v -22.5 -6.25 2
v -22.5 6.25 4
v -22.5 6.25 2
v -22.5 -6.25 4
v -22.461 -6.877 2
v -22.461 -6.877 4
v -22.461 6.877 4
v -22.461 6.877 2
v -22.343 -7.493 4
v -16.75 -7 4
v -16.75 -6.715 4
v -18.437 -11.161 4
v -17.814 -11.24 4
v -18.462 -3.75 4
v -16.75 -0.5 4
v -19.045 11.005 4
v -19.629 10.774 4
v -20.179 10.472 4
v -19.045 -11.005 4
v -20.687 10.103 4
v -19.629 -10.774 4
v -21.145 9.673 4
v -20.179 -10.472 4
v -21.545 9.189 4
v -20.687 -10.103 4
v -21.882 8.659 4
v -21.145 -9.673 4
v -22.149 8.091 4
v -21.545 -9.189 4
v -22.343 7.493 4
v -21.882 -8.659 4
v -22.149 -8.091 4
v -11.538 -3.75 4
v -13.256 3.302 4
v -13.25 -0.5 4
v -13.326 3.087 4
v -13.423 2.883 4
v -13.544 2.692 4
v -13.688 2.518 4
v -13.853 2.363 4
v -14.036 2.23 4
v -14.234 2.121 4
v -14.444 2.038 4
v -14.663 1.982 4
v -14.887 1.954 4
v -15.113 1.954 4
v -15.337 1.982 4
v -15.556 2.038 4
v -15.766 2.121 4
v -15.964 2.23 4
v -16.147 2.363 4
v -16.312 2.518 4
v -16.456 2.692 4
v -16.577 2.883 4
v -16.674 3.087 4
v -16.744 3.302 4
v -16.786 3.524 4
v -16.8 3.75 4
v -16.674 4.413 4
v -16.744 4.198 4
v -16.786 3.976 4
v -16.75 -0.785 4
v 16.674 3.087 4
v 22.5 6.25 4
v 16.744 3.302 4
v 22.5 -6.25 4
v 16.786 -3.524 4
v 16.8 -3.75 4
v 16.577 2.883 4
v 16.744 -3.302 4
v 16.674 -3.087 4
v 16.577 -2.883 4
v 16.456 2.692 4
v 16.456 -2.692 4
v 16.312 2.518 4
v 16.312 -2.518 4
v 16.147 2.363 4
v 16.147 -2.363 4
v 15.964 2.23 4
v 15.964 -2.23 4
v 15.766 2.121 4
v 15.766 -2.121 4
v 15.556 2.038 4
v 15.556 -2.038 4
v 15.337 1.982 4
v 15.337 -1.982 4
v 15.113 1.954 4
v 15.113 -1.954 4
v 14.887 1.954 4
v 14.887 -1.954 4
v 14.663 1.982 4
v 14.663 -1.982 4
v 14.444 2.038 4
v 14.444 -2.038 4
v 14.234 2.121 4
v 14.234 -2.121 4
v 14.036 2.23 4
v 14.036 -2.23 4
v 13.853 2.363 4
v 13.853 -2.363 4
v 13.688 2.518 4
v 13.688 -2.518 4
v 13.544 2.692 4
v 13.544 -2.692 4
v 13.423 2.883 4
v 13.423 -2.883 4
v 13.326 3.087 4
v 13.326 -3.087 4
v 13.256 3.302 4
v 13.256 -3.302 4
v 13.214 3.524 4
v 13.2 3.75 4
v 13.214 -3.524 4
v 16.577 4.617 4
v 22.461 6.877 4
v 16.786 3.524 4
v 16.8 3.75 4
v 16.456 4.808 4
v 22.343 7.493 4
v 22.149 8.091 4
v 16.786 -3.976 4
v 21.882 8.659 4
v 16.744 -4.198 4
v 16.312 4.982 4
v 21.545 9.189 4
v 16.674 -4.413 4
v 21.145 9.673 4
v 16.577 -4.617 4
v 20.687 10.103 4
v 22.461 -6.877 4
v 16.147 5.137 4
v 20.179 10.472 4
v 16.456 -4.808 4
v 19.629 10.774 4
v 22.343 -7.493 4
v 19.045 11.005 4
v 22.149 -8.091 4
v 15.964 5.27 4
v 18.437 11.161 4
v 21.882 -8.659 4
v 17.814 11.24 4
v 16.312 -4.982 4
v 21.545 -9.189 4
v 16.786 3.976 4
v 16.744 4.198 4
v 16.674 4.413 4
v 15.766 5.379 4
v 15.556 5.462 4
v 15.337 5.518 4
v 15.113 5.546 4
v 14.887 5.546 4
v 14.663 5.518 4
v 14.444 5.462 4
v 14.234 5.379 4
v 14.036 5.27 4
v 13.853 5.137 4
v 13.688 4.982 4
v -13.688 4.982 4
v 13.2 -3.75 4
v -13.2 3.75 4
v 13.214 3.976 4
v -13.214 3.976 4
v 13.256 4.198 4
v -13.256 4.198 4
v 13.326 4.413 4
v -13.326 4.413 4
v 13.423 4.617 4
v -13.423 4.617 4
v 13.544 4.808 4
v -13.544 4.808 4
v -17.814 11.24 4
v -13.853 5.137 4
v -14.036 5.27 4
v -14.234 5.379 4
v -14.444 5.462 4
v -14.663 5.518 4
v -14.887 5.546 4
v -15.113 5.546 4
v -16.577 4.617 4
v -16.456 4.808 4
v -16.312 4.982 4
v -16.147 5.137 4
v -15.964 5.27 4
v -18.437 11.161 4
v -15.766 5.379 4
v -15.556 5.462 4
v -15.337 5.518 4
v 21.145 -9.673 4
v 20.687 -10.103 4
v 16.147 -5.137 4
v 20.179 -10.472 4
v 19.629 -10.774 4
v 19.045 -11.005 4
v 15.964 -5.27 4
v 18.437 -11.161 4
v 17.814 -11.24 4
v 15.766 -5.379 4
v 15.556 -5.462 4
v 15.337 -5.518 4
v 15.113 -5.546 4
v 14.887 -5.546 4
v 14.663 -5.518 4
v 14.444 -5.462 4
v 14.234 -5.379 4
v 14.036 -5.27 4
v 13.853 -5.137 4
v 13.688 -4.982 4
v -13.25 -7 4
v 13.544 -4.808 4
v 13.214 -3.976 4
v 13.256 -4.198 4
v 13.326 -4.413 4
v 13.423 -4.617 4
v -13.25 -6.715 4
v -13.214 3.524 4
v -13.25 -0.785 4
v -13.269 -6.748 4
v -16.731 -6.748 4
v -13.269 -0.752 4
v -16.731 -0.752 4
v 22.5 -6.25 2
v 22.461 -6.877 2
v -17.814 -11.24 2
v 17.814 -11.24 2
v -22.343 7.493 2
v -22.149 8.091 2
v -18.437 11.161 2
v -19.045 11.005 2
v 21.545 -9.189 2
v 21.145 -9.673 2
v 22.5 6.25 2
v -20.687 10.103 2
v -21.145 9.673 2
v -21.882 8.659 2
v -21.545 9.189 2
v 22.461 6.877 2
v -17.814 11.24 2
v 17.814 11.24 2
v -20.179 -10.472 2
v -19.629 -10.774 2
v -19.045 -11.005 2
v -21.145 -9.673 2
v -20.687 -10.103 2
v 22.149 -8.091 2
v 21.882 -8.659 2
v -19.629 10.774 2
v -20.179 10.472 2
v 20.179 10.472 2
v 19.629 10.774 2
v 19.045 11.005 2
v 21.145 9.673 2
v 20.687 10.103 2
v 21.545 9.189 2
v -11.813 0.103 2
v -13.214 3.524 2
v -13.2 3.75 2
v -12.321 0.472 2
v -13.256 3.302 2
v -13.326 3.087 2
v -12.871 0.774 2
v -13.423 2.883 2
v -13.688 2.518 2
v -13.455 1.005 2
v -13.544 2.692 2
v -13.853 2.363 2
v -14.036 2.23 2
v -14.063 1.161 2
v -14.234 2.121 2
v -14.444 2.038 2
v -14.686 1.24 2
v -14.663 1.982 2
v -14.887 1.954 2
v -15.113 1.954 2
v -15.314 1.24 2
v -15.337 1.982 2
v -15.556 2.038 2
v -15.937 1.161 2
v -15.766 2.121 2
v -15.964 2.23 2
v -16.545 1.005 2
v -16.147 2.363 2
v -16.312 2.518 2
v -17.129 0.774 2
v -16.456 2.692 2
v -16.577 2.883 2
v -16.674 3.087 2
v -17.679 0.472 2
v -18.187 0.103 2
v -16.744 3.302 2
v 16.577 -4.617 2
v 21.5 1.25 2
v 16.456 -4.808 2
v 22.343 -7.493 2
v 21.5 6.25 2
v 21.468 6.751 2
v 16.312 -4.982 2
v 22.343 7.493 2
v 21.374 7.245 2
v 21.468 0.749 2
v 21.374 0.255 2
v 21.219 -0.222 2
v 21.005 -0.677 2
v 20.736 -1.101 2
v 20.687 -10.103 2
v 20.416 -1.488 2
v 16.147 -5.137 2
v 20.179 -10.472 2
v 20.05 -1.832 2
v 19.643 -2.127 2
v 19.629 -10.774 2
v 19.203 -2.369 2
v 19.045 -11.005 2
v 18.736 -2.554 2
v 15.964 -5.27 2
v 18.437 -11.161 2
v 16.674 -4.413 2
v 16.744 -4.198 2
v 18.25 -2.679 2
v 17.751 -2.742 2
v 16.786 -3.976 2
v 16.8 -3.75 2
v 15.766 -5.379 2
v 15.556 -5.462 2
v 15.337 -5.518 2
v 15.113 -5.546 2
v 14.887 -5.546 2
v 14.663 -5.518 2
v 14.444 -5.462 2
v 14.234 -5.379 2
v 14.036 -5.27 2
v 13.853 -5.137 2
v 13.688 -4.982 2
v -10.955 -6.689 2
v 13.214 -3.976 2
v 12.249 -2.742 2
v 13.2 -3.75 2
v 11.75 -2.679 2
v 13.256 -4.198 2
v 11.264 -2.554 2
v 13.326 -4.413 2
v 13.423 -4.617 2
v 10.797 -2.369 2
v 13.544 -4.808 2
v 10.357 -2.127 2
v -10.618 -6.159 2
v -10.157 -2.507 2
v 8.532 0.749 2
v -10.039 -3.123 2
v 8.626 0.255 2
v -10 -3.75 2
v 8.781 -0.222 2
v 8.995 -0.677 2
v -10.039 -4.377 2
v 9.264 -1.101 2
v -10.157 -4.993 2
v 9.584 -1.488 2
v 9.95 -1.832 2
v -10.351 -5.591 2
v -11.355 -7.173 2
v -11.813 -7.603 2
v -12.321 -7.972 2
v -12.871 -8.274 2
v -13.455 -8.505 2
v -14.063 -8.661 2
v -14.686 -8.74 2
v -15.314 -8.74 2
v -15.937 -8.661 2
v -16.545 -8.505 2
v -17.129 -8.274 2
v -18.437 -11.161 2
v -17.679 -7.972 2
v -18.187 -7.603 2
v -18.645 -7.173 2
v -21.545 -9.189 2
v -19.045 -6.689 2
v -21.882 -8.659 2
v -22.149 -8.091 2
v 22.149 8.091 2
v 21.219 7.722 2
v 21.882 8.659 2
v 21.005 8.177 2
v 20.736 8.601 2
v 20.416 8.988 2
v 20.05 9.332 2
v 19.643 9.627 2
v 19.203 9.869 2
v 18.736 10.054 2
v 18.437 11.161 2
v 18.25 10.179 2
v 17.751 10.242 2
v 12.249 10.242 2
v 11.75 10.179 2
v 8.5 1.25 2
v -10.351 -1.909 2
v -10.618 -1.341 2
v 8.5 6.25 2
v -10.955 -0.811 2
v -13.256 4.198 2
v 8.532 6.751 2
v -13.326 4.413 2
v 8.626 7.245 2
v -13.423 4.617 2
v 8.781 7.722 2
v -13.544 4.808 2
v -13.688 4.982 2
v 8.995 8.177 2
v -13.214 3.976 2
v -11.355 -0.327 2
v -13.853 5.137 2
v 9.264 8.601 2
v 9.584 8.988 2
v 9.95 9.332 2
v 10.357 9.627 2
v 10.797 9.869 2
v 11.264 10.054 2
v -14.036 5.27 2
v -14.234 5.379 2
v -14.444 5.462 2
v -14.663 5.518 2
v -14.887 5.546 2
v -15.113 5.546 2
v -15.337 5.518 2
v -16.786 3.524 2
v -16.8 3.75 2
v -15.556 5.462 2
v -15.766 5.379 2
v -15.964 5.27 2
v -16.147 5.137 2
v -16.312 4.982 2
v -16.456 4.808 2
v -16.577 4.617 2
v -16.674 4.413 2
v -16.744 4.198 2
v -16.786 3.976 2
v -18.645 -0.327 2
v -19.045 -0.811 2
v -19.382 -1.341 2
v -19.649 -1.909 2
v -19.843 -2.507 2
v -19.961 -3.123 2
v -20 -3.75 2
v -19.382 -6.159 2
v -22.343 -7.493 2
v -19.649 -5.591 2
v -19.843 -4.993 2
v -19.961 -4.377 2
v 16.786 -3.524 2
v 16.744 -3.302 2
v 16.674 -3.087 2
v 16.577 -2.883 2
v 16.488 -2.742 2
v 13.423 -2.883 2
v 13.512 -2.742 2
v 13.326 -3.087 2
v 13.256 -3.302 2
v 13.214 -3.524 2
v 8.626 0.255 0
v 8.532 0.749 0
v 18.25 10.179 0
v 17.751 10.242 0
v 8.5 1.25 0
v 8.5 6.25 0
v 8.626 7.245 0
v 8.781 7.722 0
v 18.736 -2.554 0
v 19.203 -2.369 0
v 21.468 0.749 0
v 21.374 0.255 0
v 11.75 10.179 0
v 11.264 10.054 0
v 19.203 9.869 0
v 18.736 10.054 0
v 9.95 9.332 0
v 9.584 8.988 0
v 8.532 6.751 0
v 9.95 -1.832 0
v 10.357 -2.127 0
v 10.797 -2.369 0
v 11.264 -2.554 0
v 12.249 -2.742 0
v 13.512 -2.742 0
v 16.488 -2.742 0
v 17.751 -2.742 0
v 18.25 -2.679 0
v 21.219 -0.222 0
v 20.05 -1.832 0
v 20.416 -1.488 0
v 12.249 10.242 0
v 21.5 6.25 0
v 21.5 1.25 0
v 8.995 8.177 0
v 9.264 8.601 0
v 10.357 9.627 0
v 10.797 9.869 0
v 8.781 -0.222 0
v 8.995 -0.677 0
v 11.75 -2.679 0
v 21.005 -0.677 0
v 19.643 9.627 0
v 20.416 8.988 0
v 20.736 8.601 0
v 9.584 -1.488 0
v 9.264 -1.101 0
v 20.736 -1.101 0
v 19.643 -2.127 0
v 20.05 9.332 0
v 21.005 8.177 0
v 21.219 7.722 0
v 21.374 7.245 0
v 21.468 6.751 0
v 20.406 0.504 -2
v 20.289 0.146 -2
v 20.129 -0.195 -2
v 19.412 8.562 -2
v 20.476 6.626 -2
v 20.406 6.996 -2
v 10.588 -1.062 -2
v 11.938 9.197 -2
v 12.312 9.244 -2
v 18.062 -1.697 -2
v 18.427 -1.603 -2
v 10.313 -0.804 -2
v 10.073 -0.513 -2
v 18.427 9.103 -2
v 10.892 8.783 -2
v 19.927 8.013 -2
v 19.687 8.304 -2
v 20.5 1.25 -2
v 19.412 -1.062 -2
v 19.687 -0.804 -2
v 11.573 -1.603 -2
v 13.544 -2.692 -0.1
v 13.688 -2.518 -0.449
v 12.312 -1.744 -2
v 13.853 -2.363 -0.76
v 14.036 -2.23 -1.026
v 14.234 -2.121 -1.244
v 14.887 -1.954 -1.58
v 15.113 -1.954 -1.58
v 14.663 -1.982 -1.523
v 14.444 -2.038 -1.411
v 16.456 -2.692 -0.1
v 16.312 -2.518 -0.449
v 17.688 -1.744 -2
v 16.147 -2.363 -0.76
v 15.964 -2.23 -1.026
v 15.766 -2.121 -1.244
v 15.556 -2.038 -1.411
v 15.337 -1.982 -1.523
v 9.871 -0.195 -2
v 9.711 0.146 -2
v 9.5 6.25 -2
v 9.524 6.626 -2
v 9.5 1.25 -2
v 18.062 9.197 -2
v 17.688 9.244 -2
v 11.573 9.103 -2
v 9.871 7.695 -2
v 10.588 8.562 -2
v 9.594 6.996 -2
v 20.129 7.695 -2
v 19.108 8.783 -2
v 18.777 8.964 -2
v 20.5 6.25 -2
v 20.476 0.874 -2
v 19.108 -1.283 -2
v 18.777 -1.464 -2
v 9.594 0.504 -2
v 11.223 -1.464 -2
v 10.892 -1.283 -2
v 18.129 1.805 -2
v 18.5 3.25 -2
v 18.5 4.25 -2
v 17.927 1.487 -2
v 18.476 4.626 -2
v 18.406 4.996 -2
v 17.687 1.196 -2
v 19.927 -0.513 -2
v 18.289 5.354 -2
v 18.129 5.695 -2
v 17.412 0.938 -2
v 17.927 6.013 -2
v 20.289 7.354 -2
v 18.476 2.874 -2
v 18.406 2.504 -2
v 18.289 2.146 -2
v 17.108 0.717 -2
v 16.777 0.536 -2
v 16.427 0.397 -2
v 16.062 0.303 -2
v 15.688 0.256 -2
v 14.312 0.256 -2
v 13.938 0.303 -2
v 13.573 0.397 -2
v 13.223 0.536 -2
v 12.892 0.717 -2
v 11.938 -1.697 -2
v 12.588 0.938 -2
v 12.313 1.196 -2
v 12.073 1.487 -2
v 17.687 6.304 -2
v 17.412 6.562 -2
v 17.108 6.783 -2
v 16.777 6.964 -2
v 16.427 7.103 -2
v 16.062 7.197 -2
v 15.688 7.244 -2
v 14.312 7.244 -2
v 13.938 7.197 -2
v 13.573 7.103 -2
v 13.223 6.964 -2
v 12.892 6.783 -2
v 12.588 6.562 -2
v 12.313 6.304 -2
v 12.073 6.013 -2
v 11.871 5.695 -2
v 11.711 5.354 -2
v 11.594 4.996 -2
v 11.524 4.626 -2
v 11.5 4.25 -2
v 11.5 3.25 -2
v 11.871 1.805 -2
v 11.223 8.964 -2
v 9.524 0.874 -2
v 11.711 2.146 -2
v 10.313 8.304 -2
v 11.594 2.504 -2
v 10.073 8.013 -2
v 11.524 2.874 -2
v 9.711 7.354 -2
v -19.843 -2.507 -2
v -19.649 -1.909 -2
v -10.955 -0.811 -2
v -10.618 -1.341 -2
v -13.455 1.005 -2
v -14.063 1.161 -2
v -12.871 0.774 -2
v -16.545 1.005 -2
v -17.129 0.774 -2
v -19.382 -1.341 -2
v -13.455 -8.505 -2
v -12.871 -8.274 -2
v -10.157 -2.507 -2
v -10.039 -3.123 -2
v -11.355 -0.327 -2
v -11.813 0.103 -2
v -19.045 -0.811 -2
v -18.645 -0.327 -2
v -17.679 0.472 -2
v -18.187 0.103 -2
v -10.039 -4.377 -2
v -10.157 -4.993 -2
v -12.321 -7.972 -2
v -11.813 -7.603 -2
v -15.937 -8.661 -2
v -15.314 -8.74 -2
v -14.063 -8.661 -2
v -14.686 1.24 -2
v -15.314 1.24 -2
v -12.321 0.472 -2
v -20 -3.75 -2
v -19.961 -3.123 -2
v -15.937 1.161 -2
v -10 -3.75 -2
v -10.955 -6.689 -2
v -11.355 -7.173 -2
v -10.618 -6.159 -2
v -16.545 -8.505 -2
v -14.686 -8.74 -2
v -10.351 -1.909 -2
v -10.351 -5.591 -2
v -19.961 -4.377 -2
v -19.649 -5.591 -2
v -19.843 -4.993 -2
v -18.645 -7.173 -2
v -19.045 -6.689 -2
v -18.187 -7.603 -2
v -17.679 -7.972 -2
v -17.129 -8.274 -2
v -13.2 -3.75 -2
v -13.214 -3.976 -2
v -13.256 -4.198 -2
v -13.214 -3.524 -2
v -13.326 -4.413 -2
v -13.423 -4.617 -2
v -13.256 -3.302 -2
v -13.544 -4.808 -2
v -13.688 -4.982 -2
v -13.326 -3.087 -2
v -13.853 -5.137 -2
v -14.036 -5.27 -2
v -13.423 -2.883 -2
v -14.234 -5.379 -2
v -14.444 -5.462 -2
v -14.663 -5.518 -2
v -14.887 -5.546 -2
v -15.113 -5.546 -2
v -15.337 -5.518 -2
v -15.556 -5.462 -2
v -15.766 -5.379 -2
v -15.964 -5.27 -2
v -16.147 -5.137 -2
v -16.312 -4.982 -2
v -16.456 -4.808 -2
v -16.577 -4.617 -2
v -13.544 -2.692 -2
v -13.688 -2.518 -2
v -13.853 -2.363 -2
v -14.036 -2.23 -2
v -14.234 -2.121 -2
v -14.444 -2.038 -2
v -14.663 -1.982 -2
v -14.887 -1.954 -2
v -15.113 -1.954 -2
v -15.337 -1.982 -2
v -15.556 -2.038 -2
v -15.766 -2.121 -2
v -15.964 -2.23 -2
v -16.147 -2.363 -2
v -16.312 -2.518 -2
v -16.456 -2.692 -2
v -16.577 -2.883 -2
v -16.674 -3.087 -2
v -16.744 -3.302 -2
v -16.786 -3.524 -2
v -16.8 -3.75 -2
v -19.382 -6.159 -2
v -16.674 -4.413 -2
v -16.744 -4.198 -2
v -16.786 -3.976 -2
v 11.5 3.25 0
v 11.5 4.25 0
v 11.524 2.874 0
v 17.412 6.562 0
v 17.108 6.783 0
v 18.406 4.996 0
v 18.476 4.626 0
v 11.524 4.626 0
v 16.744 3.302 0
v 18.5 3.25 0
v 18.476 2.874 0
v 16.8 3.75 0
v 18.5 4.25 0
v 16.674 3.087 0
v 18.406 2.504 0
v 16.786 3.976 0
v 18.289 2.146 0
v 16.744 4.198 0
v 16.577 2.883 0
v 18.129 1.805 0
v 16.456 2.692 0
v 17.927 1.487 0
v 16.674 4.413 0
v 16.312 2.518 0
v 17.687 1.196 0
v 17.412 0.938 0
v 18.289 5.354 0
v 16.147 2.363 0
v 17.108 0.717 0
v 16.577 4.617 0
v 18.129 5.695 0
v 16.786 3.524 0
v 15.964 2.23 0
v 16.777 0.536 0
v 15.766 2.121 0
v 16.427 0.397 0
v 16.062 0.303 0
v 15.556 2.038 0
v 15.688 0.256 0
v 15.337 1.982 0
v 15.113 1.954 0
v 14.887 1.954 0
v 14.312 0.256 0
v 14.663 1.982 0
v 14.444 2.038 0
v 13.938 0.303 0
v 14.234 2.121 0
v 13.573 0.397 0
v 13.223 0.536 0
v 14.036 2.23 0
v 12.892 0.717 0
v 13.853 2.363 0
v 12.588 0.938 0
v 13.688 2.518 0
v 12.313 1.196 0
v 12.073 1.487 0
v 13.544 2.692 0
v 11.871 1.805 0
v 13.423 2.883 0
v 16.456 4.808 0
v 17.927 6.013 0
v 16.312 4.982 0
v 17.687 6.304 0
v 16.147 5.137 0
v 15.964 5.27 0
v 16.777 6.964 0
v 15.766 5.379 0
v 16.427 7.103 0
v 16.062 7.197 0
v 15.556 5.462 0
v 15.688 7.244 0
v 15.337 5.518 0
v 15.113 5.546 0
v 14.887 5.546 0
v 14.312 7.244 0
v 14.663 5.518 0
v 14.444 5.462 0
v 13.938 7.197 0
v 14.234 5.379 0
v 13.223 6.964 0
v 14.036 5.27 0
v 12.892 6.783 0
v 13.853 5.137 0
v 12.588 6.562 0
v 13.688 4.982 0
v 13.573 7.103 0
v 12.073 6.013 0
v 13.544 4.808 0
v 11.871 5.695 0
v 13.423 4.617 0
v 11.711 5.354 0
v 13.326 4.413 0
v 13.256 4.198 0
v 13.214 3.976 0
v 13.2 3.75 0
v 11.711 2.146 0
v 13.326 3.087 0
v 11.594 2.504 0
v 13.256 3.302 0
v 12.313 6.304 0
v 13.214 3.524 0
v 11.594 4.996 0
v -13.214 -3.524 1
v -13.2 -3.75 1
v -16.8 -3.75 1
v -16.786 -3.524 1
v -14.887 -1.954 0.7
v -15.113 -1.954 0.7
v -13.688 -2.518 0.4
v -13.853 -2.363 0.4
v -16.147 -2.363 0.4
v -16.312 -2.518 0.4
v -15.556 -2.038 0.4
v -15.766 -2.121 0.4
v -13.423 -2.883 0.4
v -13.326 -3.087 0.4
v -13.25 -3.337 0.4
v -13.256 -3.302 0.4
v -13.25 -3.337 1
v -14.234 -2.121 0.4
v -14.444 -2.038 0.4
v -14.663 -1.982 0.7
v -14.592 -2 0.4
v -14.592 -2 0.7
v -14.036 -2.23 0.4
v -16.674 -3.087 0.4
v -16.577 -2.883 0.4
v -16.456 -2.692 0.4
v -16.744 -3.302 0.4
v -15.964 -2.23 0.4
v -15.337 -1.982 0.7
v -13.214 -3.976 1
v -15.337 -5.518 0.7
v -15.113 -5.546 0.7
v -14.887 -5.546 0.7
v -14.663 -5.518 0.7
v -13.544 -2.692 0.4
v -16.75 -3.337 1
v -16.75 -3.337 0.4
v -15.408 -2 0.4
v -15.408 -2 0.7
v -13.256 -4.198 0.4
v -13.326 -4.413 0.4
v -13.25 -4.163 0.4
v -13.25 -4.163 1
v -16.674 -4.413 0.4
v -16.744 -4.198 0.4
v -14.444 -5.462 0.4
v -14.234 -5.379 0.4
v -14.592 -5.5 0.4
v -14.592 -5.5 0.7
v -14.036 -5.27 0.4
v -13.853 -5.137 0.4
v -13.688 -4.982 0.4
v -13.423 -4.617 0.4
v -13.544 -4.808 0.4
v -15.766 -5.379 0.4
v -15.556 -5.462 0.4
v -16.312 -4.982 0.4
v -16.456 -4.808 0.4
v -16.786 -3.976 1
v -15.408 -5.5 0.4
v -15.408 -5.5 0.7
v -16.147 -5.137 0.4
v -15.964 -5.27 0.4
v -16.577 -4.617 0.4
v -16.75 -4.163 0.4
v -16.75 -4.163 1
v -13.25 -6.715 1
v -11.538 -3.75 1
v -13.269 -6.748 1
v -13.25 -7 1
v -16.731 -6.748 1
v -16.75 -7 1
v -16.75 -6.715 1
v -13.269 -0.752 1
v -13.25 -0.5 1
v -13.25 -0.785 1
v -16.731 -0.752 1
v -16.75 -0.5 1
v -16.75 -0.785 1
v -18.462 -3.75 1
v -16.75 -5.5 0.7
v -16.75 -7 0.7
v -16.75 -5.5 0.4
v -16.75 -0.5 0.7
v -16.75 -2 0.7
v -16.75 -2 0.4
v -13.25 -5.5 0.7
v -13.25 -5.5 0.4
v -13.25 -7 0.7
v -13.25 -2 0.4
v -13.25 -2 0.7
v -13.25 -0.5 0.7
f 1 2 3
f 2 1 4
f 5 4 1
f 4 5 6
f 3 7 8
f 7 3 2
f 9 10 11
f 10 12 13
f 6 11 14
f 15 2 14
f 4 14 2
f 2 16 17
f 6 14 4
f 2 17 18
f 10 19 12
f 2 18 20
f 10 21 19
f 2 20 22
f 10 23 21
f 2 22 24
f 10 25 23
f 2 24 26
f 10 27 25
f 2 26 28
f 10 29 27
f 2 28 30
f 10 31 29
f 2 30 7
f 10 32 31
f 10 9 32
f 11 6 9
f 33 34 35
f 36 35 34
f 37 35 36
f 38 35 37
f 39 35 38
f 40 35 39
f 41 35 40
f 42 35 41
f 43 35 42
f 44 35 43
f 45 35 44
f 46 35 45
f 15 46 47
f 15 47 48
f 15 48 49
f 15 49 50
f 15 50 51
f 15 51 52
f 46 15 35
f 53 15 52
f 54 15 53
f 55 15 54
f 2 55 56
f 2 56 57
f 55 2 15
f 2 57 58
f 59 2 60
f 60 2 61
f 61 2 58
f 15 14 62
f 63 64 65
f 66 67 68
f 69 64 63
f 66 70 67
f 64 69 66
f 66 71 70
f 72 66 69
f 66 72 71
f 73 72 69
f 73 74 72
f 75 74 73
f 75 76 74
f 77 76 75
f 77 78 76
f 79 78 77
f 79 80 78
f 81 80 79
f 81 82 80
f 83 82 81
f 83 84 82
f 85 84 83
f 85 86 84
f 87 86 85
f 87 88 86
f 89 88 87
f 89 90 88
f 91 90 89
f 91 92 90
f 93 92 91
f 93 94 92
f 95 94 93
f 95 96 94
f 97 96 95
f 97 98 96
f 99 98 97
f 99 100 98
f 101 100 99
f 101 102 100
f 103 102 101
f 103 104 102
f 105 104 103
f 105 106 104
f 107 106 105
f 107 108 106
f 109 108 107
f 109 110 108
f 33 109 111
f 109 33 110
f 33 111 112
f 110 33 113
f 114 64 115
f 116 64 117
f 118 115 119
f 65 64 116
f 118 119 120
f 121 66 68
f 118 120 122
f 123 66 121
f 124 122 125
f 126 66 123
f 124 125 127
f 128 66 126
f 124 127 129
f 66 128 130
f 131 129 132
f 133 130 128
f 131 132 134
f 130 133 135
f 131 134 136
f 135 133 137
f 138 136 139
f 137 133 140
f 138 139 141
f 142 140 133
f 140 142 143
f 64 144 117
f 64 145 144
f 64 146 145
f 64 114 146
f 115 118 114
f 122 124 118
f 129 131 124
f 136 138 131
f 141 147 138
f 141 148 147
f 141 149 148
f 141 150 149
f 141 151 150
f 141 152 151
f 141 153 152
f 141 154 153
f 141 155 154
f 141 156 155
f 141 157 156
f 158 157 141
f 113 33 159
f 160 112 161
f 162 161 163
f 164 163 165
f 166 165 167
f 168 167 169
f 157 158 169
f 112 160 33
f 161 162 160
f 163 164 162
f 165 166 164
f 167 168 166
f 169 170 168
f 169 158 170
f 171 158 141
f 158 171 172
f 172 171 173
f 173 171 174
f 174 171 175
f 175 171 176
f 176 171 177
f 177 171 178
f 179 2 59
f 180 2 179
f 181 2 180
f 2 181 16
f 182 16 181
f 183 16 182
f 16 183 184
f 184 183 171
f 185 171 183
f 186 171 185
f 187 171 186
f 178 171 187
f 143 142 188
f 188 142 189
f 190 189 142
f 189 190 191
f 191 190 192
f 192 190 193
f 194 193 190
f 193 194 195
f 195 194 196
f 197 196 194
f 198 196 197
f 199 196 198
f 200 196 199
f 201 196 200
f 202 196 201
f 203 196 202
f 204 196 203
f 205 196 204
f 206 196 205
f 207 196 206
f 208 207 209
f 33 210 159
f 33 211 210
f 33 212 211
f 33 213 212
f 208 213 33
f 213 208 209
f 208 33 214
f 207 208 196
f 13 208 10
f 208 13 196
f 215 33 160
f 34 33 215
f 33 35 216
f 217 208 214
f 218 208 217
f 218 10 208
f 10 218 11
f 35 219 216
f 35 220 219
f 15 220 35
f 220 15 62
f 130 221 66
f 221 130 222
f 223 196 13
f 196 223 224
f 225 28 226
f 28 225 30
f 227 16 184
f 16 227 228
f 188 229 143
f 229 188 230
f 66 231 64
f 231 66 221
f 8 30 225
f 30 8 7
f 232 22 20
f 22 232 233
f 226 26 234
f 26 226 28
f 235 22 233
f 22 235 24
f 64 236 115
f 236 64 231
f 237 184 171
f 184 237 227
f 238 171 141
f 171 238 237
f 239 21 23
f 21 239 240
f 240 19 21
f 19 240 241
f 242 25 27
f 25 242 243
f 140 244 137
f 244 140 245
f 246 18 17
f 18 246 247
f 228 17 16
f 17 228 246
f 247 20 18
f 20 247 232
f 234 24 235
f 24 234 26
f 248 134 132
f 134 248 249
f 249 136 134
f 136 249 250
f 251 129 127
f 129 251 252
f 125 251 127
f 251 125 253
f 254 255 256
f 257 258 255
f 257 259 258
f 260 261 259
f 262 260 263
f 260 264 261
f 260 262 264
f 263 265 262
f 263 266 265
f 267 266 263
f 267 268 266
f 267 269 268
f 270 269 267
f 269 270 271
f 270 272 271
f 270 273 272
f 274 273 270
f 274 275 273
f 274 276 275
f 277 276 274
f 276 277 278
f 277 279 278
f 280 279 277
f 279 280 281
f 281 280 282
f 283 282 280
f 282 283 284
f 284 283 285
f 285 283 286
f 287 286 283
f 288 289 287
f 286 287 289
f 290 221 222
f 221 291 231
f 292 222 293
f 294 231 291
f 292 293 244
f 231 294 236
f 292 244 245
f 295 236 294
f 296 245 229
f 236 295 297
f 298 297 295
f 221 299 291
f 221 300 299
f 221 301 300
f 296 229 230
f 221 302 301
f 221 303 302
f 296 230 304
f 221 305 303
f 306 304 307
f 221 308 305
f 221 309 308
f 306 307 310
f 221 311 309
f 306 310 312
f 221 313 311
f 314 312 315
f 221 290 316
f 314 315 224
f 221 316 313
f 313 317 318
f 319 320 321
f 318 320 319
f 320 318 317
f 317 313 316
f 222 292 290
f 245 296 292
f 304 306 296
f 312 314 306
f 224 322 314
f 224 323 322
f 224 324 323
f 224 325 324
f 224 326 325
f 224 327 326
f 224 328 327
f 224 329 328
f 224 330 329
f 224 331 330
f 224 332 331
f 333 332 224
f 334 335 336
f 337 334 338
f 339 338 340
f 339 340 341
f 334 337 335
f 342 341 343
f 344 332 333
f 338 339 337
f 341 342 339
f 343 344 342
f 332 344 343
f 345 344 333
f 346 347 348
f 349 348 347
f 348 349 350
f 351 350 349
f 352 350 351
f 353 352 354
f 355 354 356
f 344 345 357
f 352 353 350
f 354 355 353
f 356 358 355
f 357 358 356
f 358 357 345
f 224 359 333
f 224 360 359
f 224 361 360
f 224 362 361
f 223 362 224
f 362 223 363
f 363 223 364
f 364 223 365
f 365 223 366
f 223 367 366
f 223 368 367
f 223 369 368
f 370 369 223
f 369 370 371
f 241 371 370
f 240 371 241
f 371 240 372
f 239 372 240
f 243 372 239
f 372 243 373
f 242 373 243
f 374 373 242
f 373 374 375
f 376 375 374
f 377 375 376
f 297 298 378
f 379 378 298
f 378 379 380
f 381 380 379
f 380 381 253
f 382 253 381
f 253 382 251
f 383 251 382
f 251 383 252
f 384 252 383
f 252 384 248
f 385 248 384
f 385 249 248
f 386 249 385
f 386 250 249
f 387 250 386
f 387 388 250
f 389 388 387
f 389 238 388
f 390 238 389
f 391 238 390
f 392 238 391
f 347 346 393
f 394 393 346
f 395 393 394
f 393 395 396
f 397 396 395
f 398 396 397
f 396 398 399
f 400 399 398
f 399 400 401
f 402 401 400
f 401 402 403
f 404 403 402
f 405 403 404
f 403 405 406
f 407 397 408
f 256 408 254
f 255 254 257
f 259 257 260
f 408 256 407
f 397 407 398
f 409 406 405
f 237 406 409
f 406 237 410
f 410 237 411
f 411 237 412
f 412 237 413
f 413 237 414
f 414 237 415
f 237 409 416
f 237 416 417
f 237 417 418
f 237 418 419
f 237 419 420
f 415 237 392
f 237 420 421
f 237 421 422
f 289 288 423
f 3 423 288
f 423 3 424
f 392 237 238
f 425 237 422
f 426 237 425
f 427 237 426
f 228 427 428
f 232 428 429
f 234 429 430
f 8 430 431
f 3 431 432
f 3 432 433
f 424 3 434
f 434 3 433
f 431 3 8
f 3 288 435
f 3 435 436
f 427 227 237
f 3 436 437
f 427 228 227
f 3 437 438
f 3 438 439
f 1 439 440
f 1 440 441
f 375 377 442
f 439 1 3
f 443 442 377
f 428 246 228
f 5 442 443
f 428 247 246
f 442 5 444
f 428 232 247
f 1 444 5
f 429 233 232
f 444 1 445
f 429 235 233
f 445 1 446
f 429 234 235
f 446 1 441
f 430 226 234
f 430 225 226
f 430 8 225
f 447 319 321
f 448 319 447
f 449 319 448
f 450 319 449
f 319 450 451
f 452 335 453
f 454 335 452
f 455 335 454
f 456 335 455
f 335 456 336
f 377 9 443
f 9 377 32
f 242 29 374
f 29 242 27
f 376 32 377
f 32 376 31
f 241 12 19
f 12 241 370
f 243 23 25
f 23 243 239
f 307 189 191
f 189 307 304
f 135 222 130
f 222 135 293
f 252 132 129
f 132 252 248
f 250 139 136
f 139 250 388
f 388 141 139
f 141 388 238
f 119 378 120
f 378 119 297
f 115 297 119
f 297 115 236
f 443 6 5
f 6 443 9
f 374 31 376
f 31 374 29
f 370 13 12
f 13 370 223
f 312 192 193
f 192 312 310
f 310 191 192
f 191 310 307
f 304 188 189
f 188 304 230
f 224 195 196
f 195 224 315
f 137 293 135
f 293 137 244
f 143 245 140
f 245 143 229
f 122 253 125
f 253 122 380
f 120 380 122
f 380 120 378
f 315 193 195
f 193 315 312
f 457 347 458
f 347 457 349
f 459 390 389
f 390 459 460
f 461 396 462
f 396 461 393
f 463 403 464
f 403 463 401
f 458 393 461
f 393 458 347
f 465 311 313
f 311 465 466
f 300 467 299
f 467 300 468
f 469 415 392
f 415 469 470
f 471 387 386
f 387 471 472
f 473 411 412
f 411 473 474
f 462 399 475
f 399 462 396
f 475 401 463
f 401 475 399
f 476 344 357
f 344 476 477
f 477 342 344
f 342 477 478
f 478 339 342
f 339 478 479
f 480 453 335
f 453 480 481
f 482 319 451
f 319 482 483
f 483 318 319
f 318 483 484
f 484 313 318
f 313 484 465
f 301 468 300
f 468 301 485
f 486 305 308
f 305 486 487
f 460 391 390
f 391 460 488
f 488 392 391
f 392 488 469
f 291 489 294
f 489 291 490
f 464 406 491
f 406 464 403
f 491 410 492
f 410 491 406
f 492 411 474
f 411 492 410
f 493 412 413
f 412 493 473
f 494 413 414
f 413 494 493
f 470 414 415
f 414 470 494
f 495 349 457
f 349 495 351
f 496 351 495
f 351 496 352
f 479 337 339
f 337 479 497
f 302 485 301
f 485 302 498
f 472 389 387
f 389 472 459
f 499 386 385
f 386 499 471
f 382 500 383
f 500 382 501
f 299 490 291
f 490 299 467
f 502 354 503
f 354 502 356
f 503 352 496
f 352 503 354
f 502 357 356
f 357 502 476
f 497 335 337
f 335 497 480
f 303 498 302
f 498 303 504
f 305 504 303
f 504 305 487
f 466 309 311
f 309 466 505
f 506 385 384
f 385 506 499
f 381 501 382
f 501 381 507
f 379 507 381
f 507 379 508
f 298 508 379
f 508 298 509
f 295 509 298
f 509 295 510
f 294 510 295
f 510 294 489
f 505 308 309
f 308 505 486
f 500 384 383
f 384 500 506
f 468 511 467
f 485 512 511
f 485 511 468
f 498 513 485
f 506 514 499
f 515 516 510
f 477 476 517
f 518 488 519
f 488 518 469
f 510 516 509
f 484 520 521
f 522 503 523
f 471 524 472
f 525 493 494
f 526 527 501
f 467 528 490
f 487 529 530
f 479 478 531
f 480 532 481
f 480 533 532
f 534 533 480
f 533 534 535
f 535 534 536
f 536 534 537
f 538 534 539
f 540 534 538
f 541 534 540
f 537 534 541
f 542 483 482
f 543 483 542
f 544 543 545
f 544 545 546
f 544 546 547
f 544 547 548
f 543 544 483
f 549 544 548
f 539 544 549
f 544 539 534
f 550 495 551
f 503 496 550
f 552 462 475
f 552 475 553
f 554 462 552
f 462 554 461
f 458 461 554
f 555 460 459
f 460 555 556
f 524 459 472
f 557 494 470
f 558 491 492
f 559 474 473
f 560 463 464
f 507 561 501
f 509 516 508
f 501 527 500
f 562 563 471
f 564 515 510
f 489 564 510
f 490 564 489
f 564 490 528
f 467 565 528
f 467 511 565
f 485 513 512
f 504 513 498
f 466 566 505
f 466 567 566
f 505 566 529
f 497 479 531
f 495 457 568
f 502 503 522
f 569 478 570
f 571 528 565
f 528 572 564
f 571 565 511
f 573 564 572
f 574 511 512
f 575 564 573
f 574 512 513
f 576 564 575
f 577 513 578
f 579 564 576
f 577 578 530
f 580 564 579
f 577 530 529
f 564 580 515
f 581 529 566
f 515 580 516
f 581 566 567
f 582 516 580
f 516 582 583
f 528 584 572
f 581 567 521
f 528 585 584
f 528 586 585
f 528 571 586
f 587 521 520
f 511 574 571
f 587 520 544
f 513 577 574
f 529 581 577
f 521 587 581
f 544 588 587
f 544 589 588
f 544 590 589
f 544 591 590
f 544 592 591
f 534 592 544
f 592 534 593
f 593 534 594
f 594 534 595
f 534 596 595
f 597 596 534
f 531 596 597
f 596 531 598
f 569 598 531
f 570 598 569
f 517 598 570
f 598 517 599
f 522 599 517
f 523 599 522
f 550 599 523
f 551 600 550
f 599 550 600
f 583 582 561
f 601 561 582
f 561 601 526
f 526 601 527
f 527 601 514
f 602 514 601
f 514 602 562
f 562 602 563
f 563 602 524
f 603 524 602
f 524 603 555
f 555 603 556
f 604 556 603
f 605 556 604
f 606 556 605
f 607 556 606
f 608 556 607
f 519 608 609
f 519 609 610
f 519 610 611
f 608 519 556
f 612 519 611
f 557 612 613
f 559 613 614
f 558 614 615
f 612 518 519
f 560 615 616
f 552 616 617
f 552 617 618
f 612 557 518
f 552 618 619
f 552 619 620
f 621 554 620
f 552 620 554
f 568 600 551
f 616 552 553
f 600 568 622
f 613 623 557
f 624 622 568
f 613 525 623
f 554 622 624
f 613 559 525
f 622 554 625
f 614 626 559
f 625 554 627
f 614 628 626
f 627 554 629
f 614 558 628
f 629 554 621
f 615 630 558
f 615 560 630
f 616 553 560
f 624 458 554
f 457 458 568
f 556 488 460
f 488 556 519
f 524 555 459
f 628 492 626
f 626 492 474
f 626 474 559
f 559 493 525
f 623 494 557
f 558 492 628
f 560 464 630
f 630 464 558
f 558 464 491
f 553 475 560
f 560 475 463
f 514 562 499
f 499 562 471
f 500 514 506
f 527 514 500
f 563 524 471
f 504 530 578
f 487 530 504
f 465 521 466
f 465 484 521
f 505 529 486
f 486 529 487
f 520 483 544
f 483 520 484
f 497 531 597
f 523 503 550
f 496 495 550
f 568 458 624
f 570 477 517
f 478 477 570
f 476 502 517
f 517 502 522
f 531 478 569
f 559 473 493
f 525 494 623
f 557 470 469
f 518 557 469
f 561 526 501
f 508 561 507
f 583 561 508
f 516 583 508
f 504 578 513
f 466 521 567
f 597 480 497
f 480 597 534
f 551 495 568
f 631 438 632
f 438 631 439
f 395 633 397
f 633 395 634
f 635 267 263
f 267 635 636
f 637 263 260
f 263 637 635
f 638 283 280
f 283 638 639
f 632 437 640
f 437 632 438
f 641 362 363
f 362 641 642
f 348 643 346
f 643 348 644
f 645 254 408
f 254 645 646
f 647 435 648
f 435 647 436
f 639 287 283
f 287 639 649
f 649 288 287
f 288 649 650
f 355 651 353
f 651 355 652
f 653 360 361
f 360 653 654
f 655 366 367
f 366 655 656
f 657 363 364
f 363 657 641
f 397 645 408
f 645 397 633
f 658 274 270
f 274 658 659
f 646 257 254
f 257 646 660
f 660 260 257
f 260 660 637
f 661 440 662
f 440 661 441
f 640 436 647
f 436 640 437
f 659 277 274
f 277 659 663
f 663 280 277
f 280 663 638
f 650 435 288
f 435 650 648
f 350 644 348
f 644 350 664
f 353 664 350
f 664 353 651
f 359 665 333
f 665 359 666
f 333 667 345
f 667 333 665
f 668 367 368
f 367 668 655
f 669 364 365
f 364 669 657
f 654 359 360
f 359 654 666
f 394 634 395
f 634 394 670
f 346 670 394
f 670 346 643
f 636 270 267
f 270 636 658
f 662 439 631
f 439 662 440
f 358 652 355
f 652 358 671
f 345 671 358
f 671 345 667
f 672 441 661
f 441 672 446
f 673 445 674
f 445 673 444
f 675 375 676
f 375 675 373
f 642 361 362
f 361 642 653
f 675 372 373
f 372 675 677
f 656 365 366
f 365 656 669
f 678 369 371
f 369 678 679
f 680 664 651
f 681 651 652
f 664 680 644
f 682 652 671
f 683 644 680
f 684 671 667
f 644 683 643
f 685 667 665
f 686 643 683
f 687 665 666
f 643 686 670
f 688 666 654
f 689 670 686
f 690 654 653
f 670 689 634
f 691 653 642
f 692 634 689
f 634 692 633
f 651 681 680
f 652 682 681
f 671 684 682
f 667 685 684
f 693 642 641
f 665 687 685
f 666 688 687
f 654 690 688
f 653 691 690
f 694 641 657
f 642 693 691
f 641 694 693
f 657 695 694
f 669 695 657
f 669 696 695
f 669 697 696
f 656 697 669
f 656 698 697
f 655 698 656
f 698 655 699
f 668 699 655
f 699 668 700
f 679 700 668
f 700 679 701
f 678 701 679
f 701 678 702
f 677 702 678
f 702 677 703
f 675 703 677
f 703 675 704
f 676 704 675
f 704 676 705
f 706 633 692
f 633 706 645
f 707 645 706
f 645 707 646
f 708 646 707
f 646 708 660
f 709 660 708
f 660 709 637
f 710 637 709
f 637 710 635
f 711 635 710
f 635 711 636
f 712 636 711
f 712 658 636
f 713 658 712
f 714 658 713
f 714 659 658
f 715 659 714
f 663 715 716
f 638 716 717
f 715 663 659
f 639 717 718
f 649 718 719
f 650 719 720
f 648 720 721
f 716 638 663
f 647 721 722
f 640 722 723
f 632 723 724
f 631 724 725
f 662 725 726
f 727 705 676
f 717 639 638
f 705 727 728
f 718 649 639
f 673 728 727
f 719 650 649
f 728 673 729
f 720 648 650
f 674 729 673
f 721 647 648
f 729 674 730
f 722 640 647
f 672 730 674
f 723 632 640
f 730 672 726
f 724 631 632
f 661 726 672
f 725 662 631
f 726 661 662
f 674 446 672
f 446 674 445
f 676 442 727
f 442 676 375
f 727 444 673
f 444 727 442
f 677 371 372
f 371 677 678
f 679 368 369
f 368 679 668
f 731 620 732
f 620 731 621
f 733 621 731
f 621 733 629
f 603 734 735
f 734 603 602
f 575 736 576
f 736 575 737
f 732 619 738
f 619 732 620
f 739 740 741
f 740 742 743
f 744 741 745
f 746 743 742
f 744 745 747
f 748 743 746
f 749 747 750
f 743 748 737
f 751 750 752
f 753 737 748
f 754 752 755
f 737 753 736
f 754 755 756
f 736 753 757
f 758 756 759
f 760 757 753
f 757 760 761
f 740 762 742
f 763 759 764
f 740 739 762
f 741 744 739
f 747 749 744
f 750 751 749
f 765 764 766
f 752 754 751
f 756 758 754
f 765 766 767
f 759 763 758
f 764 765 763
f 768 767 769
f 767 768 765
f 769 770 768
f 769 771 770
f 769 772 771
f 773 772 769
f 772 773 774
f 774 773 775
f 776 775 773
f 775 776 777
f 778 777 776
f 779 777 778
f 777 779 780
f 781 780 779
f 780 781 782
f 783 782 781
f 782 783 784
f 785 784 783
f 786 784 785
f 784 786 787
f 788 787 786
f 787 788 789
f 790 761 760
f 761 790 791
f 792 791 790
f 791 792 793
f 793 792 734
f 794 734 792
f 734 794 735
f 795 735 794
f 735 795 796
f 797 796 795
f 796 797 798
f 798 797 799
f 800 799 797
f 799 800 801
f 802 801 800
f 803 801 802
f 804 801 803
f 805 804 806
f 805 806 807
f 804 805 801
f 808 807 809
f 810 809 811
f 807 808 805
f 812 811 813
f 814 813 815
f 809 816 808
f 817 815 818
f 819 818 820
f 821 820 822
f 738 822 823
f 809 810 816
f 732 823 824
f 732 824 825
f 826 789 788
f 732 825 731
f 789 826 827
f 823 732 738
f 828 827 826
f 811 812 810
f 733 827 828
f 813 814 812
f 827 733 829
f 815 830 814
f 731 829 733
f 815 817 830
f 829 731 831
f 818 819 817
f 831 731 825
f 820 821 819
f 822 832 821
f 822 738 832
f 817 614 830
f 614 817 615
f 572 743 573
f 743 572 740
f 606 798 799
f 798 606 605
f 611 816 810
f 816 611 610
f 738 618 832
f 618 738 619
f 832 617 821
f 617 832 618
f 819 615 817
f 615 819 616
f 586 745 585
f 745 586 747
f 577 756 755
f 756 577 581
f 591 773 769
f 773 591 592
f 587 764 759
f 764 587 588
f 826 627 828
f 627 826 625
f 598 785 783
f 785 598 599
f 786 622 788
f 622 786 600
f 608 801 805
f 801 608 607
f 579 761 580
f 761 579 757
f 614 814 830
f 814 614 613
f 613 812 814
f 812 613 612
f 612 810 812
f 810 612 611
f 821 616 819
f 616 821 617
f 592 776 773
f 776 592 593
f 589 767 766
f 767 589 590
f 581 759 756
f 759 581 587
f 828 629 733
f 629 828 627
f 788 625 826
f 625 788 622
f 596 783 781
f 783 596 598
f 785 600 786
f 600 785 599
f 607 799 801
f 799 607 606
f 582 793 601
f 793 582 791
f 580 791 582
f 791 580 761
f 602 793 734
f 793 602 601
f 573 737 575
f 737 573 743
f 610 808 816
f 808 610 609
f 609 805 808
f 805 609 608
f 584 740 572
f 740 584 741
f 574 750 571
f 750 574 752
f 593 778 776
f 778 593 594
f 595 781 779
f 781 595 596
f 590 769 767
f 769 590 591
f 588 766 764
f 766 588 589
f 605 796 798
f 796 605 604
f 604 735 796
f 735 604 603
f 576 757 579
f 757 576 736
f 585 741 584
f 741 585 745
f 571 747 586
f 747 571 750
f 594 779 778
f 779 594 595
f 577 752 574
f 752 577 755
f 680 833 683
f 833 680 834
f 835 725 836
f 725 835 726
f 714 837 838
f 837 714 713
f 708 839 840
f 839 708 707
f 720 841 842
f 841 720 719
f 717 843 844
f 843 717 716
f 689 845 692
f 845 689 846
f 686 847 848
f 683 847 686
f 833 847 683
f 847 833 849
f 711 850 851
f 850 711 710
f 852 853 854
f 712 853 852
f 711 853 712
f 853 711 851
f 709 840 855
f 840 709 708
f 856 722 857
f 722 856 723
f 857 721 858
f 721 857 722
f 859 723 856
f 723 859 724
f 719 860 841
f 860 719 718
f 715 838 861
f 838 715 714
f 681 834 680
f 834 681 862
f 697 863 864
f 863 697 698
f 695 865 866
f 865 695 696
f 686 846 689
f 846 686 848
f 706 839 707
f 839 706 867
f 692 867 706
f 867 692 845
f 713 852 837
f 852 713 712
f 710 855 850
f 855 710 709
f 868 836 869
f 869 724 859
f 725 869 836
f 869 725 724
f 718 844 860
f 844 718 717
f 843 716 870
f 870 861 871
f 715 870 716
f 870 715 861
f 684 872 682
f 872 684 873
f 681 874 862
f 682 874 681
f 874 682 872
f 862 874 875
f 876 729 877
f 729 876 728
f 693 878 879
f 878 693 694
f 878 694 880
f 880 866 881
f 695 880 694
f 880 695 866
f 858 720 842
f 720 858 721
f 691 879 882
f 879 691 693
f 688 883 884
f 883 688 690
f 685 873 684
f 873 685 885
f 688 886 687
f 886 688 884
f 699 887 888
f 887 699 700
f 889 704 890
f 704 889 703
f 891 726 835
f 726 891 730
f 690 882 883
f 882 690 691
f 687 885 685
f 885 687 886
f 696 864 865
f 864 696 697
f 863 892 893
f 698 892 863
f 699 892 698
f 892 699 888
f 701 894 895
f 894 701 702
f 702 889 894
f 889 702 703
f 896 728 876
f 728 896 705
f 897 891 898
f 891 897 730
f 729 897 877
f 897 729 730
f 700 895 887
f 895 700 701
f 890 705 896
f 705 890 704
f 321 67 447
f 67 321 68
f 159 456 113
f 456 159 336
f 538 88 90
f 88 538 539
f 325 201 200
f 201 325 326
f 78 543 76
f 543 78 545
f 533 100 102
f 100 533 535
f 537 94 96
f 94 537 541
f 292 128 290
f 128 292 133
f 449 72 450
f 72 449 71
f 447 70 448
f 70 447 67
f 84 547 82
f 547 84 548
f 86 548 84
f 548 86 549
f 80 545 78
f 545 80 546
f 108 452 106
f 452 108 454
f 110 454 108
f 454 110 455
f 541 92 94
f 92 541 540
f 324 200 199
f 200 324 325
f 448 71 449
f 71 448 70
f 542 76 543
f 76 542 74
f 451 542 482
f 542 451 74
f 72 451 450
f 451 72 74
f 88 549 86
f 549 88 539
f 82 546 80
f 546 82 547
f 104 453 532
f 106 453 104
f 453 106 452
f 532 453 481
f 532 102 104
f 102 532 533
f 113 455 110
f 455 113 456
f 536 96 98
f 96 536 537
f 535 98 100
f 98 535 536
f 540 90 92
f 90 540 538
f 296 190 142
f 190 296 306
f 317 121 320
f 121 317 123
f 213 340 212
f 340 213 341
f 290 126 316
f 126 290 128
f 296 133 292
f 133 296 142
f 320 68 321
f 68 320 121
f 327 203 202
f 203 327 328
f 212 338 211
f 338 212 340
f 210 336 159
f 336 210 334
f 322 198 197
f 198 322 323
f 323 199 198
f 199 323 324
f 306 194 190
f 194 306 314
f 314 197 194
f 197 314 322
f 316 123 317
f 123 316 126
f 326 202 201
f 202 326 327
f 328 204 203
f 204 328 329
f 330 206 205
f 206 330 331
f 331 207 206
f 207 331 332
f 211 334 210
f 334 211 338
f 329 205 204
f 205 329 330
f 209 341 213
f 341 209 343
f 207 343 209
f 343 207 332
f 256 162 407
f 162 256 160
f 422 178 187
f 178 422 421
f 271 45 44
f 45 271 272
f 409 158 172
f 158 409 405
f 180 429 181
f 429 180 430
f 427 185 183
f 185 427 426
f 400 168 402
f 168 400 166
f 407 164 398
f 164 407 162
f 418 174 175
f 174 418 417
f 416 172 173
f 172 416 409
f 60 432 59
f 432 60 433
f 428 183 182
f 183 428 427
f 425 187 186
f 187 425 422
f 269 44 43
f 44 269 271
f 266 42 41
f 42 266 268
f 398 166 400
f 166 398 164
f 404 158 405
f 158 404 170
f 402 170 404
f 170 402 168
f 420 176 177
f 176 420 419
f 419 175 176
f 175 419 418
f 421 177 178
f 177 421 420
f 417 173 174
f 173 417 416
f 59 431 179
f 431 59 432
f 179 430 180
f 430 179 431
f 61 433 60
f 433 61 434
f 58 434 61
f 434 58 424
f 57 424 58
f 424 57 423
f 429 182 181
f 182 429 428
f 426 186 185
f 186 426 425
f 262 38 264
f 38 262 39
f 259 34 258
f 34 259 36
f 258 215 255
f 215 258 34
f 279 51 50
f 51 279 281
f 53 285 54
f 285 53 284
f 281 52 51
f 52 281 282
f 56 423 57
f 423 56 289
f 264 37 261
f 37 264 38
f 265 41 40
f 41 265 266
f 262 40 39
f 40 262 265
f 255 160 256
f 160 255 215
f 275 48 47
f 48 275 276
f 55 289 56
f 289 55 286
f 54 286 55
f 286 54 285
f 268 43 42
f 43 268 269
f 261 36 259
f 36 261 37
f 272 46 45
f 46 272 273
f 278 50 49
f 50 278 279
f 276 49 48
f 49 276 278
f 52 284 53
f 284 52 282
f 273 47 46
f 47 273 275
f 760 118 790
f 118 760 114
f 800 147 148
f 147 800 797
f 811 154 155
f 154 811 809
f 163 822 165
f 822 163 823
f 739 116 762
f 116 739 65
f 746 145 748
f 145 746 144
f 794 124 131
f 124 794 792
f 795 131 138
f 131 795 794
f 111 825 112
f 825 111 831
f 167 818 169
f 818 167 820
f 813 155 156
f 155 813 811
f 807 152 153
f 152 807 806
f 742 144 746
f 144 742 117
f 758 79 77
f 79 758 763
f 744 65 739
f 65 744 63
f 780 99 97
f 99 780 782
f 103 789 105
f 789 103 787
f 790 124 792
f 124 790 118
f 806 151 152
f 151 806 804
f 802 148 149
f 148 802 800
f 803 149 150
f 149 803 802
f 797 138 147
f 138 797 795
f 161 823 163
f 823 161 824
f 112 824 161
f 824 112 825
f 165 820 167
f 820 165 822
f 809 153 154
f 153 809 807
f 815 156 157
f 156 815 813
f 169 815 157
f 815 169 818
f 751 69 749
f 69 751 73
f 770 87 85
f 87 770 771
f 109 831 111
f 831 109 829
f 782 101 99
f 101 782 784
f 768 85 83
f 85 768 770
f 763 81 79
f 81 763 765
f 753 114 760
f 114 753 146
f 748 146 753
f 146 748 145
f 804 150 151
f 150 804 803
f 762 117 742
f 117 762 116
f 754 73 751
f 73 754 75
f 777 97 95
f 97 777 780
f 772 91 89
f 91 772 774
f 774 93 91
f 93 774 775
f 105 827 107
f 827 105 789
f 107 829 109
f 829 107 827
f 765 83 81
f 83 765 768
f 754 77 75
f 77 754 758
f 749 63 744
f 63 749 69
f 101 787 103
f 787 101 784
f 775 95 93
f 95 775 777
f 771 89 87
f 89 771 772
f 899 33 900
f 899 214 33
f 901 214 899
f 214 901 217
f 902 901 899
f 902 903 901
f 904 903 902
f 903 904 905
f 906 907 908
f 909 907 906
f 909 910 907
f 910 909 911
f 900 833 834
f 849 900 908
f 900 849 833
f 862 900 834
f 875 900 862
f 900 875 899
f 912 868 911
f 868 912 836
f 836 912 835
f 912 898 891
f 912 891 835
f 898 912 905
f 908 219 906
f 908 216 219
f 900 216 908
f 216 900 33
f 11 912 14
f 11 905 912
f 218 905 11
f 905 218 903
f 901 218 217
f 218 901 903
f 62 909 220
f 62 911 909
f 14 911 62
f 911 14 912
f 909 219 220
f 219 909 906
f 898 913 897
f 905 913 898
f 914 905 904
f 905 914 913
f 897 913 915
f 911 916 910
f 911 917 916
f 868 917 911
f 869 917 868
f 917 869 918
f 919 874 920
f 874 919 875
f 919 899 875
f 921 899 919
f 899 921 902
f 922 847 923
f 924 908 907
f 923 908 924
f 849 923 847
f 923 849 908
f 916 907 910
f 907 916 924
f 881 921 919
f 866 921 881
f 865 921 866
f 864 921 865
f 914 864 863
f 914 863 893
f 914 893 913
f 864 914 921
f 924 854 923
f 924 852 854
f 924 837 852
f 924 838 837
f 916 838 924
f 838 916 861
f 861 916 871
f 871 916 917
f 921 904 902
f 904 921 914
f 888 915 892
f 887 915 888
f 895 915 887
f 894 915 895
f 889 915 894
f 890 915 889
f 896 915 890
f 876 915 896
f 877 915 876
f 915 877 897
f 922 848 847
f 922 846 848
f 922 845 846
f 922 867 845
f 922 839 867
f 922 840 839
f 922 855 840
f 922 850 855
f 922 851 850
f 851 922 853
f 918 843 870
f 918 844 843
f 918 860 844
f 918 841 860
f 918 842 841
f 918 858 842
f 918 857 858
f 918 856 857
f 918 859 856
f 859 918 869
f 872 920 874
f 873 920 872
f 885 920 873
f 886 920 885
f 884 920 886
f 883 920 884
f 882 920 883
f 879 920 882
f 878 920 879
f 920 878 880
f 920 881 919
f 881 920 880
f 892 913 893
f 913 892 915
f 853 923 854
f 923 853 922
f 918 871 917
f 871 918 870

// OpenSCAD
$fn = 50;


difference() {
	union() {
		translate(v = [0, 0, 2]) {
			rotate(a = [0, 0, 0]) {
				hull() {
					translate(v = [-17.5000000000, 6.2500000000, 0]) {
						rotate(a = [0, 0, 0]) {
							translate(v = [0, 0, 0]) {
								rotate(a = [0, 0, 0]) {
									cylinder(h = 2, r = 5);
								}
							}
						}
					}
					translate(v = [17.5000000000, 6.2500000000, 0]) {
						rotate(a = [0, 0, 0]) {
							translate(v = [0, 0, 0]) {
								rotate(a = [0, 0, 0]) {
									cylinder(h = 2, r = 5);
								}
							}
						}
					}
					translate(v = [-17.5000000000, -6.2500000000, 0]) {
						rotate(a = [0, 0, 0]) {
							translate(v = [0, 0, 0]) {
								rotate(a = [0, 0, 0]) {
									cylinder(h = 2, r = 5);
								}
							}
						}
					}
					translate(v = [17.5000000000, -6.2500000000, 0]) {
						rotate(a = [0, 0, 0]) {
							translate(v = [0, 0, 0]) {
								rotate(a = [0, 0, 0]) {
									cylinder(h = 2, r = 5);
								}
							}
						}
					}
				}
			}
		}
		translate(v = [15.0000000000, 3.7500000000, 0]) {
			rotate(a = [0, 0, 0]) {
				hull() {
					translate(v = [-2.5000000000, 2.5000000000, 0]) {
						rotate(a = [0, 0, 0]) {
							cylinder(h = 2, r1 = 4.0000000000, r2 = 4.0000000000);
						}
					}
					translate(v = [2.5000000000, 2.5000000000, 0]) {
						rotate(a = [0, 0, 0]) {
							cylinder(h = 2, r1 = 4.0000000000, r2 = 4.0000000000);
						}
					}
					translate(v = [-2.5000000000, -2.5000000000, 0]) {
						rotate(a = [0, 0, 0]) {
							cylinder(h = 2, r1 = 4.0000000000, r2 = 4.0000000000);
						}
					}
					translate(v = [2.5000000000, -2.5000000000, 0]) {
						rotate(a = [0, 0, 0]) {
							cylinder(h = 2, r1 = 4.0000000000, r2 = 4.0000000000);
						}
					}
				}
			}
		}
		translate(v = [15.0000000000, 3.7500000000, -2]) {
			rotate(a = [0, 180, 0]) {
				hull() {
					translate(v = [-2.5000000000, 2.5000000000, 0]) {
						rotate(a = [0, 180, 0]) {
							cylinder(h = 2, r1 = 3.0000000000, r2 = 4.0000000000);
						}
					}
					translate(v = [2.5000000000, 2.5000000000, 0]) {
						rotate(a = [0, 180, 0]) {
							cylinder(h = 2, r1 = 3.0000000000, r2 = 4.0000000000);
						}
					}
					translate(v = [-2.5000000000, -2.5000000000, 0]) {
						rotate(a = [0, 180, 0]) {
							cylinder(h = 2, r1 = 3.0000000000, r2 = 4.0000000000);
						}
					}
					translate(v = [2.5000000000, -2.5000000000, 0]) {
						rotate(a = [0, 180, 0]) {
							cylinder(h = 2, r1 = 3.0000000000, r2 = 4.0000000000);
						}
					}
				}
			}
		}
		translate(v = [-15.0000000000, -3.7500000000, -2.0000000000]) {
			rotate(a = [0, 0, 0]) {
				cylinder(h = 4, r = 5);
			}
		}
	}
	union() {
		translate(v = [15.0000000000, 3.7500000000, -2]) {
			rotate(a = [0, 0, 0]) {
				hull() {
					translate(v = [-0.5000000000, 0.5000000000, 0]) {
						rotate(a = [0, 0, 0]) {
							translate(v = [0, 0, 0]) {
								rotate(a = [0, 0, 0]) {
									cylinder(h = 2, r = 3.0000000000);
								}
							}
						}
					}
					translate(v = [0.5000000000, 0.5000000000, 0]) {
						rotate(a = [0, 0, 0]) {
							translate(v = [0, 0, 0]) {
								rotate(a = [0, 0, 0]) {
									cylinder(h = 2, r = 3.0000000000);
								}
							}
						}
					}
					translate(v = [-0.5000000000, -0.5000000000, 0]) {
						rotate(a = [0, 0, 0]) {
							translate(v = [0, 0, 0]) {
								rotate(a = [0, 0, 0]) {
									cylinder(h = 2, r = 3.0000000000);
								}
							}
						}
					}
					translate(v = [0.5000000000, -0.5000000000, 0]) {
						rotate(a = [0, 0, 0]) {
							translate(v = [0, 0, 0]) {
								rotate(a = [0, 0, 0]) {
									cylinder(h = 2, r = 3.0000000000);
								}
							}
						}
					}
				}
			}
		}
		translate(v = [-15.0000000000, -3.7500000000, -50]) {
			rotate(a = [0, 0, 0]) {
				cylinder(h = 100, r = 1.8000000000);
			}
		}
		translate(v = [15.0000000000, -3.7500000000, -50]) {
			rotate(a = [0, 0, 0]) {
				cylinder(h = 100, r = 1.8000000000);
			}
		}
		translate(v = [-15.0000000000, 3.7500000000, -50]) {
			rotate(a = [0, 0, 0]) {
				cylinder(h = 100, r = 1.8000000000);
			}
		}
		translate(v = [15.0000000000, 3.7500000000, -50]) {
			rotate(a = [0, 0, 0]) {
				cylinder(h = 100, r = 1.8000000000);
			}
		}
		translate(v = [-15.0000000000, -3.7500000000, 1]) {
			rotate(a = [0, 0, 0]) {
				#translate(v = [0, 0, 0]) {
					rotate(a = [0, 0, 0]) {
						linear_extrude(height = 3) {
							polygon(points = [[3.4620000000, 0.0000000000], [1.7310000000, 2.9981799479], [-1.7310000000, 2.9981799479], [-3.4620000000, 0.0000000000], [-1.7310000000, -2.9981799479], [1.7310000000, -2.9981799479]]);
						}
					}
				}
			}
		}
		#translate(v = [-16.7500000000, -7.0000000000, 4]) {
			rotate(a = [0, 0, 0]) {
				cube(size = [3.5000000000, 6.5000000000, 0.3000000000]);
			}
		}
		#translate(v = [-16.7500000000, -5.5000000000, 4.3000000000]) {
			rotate(a = [0, 0, 0]) {
				cube(size = [3.5000000000, 3.5000000000, 0.3000000000]);
			}
		}
		#translate(v = [-16.7500000000, -7.0000000000, 0.7000000000]) {
			rotate(a = [0, 0, 0]) {
				cube(size = [3.5000000000, 6.5000000000, 0.3000000000]);
			}
		}
		#translate(v = [-16.7500000000, -5.5000000000, 0.4000000000]) {
			rotate(a = [0, 0, 0]) {
				cube(size = [3.5000000000, 3.5000000000, 0.3000000000]);
			}
		}
	}
}
